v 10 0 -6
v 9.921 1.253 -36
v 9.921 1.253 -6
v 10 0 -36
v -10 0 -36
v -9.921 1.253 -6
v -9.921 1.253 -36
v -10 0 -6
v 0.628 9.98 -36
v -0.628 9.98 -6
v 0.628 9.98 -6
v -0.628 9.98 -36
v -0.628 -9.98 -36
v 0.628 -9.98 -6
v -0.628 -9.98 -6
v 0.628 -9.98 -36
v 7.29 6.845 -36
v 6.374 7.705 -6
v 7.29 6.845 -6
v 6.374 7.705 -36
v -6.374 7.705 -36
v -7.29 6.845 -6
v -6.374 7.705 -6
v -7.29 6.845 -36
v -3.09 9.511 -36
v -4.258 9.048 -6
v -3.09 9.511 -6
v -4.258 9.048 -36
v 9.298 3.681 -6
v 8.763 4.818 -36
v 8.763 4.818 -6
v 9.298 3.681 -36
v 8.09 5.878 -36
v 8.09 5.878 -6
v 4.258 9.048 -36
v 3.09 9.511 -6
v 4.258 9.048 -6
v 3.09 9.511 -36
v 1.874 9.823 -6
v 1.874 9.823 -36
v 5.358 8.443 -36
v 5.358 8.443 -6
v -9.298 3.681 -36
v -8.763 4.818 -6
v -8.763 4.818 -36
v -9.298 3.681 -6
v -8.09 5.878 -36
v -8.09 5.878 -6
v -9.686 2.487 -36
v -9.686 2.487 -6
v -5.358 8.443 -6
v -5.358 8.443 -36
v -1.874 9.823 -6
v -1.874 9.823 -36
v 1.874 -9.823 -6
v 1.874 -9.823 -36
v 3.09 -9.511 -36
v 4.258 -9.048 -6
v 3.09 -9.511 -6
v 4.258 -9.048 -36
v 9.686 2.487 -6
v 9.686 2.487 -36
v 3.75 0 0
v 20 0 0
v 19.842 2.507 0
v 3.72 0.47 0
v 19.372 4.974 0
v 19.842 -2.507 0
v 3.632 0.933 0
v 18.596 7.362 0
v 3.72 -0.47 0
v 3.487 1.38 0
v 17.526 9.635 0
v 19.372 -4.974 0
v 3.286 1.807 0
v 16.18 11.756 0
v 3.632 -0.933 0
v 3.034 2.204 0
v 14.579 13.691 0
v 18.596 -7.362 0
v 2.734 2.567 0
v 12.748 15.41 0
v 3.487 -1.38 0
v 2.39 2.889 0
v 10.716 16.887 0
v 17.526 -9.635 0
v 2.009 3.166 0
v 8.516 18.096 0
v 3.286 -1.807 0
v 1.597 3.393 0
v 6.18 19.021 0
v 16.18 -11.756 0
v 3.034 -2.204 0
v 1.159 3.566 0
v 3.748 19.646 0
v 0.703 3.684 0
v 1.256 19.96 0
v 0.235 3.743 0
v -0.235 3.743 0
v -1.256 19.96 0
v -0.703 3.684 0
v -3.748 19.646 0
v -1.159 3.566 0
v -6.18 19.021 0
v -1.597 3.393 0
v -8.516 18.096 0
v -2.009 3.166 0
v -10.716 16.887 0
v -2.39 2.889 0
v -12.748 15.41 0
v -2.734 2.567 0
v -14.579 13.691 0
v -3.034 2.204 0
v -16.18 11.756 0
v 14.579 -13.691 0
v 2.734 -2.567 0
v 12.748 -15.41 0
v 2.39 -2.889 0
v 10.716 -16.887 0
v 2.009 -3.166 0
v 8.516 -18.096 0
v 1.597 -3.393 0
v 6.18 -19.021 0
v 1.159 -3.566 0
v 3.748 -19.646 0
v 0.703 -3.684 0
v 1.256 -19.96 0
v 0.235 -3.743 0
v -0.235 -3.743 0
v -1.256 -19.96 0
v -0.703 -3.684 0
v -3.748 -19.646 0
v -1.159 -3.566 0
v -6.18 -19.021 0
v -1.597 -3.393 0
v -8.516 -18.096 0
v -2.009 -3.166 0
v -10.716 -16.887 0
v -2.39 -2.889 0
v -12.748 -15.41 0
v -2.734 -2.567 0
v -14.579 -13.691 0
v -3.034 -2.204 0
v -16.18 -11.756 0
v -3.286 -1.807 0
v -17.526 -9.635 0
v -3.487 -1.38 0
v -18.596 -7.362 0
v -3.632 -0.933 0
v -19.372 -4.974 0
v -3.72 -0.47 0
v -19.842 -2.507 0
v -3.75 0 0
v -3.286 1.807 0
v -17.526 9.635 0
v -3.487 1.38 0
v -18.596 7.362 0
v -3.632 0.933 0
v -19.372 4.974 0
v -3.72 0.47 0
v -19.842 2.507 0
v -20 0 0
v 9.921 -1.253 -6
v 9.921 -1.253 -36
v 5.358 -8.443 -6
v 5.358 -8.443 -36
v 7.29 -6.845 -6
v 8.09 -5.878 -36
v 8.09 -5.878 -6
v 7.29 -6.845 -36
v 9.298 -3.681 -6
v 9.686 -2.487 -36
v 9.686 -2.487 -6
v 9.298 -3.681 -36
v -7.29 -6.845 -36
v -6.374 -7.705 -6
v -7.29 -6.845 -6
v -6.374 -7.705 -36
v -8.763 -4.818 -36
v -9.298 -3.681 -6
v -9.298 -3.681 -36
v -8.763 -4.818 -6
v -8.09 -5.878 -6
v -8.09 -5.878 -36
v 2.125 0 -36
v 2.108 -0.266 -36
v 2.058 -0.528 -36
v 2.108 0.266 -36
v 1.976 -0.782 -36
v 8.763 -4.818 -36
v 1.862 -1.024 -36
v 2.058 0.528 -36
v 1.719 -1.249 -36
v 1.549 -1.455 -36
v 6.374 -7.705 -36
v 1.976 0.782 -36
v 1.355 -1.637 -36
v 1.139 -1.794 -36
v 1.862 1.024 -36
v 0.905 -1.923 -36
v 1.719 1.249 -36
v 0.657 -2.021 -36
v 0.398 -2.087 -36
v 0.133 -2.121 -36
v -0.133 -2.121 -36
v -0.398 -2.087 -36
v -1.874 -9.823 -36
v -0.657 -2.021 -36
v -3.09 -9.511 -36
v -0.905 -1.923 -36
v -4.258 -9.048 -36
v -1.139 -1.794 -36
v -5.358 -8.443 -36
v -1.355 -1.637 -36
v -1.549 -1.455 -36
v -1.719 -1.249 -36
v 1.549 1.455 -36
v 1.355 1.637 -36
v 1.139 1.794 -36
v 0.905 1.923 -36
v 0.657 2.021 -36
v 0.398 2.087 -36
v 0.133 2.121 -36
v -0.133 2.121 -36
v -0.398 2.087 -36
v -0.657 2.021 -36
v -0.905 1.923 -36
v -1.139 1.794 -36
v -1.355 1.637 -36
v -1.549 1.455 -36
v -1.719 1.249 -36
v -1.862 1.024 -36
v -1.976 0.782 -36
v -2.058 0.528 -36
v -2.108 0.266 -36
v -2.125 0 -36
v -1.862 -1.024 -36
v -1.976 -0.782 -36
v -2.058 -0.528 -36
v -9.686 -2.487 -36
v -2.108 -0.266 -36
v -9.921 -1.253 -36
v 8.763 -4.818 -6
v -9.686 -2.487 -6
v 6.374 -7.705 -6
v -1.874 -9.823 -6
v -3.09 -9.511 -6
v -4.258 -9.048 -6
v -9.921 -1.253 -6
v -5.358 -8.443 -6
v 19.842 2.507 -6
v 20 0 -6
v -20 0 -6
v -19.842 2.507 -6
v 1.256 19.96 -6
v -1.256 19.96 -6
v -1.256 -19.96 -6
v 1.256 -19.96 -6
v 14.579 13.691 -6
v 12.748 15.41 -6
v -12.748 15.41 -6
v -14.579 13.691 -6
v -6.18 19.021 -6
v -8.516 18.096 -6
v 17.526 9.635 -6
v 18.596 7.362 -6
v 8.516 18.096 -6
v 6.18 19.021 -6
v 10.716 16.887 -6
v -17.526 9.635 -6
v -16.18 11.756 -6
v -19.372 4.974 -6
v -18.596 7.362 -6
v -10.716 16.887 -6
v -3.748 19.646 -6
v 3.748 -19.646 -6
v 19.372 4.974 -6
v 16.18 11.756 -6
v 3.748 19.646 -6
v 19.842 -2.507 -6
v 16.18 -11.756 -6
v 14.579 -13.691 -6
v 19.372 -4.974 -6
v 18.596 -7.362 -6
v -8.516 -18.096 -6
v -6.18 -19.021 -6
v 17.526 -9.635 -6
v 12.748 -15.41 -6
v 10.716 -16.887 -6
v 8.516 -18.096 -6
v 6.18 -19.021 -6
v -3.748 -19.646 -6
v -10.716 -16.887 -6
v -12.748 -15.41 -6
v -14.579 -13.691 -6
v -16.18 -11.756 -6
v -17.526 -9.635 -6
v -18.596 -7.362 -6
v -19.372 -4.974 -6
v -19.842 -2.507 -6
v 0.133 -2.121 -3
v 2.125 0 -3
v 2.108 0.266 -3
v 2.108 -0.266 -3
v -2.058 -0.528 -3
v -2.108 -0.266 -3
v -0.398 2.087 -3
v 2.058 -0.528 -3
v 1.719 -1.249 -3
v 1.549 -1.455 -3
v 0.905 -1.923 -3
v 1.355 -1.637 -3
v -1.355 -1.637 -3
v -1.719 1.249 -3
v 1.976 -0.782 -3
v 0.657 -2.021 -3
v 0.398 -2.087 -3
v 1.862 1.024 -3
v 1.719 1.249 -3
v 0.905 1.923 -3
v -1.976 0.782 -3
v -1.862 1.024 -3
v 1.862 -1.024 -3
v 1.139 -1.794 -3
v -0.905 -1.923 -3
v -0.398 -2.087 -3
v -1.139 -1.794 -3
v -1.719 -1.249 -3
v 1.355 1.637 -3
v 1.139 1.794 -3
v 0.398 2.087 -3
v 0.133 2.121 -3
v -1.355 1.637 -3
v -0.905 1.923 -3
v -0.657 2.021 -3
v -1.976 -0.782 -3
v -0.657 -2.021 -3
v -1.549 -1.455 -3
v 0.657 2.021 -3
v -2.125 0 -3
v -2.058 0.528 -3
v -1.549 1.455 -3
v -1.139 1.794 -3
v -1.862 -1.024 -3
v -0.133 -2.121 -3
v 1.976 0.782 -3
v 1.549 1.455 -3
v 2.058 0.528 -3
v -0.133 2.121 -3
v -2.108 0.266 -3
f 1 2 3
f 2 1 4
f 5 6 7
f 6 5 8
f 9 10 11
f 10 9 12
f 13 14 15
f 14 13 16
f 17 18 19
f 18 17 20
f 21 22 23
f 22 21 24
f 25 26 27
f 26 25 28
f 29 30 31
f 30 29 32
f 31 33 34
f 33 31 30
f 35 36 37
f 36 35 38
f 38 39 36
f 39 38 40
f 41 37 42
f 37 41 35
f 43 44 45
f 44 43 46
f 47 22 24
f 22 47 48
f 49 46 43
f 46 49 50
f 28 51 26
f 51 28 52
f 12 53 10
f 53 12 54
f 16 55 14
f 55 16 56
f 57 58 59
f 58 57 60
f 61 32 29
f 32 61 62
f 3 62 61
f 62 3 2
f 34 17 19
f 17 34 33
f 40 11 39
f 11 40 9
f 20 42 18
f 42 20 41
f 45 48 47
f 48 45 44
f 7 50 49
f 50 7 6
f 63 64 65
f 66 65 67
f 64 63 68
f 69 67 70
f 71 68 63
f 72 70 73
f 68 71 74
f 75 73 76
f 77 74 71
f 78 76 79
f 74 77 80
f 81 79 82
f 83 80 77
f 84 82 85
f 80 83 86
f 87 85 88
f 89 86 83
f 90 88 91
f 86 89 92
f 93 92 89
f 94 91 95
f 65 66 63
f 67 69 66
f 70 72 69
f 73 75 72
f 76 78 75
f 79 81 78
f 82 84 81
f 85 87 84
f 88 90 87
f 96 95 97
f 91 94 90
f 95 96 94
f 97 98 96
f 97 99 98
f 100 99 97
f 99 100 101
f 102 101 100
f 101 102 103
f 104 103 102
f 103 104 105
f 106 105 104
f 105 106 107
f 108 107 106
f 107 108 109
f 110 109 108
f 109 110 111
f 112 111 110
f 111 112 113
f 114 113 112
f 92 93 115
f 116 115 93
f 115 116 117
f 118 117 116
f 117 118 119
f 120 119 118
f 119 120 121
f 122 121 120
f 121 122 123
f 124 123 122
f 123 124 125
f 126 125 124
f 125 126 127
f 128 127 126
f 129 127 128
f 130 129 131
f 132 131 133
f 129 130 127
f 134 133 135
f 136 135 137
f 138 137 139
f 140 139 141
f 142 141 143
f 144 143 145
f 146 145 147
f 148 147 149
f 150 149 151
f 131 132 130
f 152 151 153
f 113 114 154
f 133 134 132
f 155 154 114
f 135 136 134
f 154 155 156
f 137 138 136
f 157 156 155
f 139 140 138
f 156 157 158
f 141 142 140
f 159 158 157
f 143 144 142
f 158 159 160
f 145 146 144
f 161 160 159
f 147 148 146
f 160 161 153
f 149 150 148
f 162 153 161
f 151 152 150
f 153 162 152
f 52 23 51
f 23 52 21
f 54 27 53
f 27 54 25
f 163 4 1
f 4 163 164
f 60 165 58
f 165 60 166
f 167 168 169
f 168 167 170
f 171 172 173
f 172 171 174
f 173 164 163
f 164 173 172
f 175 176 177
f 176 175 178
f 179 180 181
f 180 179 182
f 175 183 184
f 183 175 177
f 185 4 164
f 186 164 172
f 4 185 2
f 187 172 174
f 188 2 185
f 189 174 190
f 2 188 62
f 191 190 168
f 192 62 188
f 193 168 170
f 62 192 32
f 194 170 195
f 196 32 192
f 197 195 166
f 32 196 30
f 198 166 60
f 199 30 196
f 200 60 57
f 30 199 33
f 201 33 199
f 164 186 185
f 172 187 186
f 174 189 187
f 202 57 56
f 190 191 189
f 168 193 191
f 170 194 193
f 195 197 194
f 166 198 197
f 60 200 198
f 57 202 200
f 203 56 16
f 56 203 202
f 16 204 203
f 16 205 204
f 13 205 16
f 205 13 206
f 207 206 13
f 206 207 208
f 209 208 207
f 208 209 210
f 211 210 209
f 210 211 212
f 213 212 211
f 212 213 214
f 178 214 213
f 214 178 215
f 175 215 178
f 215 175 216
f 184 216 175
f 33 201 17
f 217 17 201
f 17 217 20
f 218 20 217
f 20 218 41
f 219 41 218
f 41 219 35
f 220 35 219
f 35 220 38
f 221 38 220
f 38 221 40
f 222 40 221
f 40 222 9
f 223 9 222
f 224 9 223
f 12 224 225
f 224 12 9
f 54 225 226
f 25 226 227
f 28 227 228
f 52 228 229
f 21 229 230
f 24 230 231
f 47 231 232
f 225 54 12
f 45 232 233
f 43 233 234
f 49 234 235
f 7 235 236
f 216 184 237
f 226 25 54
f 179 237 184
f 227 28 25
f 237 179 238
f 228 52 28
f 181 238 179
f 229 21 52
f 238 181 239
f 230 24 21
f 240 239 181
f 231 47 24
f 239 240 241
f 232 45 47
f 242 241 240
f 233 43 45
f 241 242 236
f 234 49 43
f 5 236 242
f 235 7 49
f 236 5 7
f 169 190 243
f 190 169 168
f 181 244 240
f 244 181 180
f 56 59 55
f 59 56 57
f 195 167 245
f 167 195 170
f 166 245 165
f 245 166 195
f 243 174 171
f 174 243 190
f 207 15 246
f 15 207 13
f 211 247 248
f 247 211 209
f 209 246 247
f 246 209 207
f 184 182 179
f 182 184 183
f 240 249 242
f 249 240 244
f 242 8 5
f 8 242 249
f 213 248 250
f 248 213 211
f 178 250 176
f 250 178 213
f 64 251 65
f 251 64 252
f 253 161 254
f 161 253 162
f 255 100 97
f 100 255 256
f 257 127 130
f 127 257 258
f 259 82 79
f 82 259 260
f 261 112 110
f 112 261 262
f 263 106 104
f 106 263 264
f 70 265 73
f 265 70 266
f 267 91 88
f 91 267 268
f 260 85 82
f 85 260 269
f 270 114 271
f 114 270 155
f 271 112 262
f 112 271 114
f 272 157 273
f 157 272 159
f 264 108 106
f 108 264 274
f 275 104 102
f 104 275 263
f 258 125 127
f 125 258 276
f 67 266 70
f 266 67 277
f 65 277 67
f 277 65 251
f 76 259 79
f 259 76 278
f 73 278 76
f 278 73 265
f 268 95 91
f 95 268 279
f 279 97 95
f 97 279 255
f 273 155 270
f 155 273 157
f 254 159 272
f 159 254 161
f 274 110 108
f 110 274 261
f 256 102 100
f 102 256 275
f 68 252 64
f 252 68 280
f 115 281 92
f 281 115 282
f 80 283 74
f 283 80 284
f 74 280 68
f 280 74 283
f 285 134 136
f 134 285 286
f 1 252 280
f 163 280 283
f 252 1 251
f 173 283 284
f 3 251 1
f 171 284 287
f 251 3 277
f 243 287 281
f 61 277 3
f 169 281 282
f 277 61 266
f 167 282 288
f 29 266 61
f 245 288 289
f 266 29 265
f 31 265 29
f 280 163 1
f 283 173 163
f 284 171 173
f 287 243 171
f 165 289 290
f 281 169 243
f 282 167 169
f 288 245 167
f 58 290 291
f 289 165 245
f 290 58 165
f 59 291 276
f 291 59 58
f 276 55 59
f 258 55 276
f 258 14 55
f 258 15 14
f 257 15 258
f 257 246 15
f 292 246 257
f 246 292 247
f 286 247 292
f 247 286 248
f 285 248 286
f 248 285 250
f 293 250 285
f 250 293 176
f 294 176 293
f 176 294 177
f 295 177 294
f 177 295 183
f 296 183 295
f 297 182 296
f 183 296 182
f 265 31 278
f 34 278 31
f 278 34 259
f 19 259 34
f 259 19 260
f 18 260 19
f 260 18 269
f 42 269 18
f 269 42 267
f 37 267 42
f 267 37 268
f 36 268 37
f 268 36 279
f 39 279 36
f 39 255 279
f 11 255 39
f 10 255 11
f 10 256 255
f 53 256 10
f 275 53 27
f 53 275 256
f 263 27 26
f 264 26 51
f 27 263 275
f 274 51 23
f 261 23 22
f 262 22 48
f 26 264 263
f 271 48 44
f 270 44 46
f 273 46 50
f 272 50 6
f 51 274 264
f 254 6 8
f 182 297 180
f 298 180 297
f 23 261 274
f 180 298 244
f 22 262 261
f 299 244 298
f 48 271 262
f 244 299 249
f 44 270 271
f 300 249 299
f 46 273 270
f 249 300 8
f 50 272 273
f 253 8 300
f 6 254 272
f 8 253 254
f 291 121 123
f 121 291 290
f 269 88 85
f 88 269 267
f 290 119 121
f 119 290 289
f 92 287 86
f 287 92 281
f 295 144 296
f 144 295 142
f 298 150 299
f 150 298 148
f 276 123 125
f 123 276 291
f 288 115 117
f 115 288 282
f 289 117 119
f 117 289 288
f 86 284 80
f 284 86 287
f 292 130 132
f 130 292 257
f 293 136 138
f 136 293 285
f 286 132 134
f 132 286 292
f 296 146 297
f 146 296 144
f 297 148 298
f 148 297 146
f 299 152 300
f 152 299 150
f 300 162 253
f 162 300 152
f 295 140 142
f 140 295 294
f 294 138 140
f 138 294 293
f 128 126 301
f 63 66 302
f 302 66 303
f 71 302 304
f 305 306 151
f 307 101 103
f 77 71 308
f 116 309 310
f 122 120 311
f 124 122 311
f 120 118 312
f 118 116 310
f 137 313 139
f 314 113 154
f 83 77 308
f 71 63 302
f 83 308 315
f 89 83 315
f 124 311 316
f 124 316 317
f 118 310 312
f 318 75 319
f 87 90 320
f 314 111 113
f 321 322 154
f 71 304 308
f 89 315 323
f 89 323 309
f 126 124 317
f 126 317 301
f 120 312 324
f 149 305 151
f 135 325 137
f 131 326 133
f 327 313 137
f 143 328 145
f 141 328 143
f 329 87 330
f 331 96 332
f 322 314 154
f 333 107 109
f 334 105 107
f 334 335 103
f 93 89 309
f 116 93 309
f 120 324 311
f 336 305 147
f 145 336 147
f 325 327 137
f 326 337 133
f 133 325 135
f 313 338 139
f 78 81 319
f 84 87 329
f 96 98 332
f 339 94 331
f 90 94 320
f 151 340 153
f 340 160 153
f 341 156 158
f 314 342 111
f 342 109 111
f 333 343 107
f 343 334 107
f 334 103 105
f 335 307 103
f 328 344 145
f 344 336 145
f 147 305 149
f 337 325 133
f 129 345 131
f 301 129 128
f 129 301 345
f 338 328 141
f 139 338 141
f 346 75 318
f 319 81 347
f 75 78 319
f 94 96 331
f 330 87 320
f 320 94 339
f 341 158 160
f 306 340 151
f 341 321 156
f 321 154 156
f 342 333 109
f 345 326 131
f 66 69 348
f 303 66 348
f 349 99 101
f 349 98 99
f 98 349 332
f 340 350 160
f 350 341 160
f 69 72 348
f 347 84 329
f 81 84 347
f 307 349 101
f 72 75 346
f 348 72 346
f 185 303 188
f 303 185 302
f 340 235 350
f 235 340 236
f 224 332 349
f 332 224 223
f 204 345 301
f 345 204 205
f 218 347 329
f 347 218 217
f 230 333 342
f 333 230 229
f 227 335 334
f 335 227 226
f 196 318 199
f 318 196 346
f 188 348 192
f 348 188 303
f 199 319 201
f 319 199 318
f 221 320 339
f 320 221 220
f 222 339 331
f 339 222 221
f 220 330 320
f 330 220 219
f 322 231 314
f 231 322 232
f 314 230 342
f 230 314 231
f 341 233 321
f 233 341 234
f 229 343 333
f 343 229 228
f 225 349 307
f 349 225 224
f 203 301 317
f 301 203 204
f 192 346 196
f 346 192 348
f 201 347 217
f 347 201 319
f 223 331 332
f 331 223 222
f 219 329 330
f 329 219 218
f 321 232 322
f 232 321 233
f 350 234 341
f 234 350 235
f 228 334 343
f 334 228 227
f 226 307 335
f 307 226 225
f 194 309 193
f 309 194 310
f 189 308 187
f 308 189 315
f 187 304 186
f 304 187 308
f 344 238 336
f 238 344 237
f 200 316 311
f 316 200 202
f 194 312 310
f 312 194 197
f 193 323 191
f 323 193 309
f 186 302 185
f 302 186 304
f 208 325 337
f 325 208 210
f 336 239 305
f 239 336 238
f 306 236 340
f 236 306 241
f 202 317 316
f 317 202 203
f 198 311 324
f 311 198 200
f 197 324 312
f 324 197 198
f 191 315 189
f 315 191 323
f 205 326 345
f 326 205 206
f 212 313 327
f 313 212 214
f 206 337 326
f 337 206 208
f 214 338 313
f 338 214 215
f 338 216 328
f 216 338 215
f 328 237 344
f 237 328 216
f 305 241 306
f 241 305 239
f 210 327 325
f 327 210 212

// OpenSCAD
$fn = 50;


difference() {
	union() {
		translate(v = [0, 0, -36.0000000000]) {
			cylinder(h = 36, r = 10.0000000000);
		}
		translate(v = [0, 0, -6.0000000000]) {
			cylinder(h = 6, r = 20.0000000000);
		}
	}
	union() {
		translate(v = [0, 0, 0]) {
			rotate(a = [0, 0, 0]) {
				difference() {
					union() {
						#translate(v = [0, 0, -36.0000000000]) {
							cylinder(h = 36, r = 2.0000000000);
						}
						#translate(v = [0, 0, -3]) {
							cylinder(h = 3, r1 = 2.1250000000, r2 = 3.7500000000);
						}
						#translate(v = [0, 0, -36.0000000000]) {
							cylinder(h = 36, r = 2.1250000000);
						}
						#translate(v = [0, 0, -36.0000000000]) {
							cylinder(h = 36, r = 2.0000000000);
						}
					}
					union();
				}
			}
		}
	}
}
